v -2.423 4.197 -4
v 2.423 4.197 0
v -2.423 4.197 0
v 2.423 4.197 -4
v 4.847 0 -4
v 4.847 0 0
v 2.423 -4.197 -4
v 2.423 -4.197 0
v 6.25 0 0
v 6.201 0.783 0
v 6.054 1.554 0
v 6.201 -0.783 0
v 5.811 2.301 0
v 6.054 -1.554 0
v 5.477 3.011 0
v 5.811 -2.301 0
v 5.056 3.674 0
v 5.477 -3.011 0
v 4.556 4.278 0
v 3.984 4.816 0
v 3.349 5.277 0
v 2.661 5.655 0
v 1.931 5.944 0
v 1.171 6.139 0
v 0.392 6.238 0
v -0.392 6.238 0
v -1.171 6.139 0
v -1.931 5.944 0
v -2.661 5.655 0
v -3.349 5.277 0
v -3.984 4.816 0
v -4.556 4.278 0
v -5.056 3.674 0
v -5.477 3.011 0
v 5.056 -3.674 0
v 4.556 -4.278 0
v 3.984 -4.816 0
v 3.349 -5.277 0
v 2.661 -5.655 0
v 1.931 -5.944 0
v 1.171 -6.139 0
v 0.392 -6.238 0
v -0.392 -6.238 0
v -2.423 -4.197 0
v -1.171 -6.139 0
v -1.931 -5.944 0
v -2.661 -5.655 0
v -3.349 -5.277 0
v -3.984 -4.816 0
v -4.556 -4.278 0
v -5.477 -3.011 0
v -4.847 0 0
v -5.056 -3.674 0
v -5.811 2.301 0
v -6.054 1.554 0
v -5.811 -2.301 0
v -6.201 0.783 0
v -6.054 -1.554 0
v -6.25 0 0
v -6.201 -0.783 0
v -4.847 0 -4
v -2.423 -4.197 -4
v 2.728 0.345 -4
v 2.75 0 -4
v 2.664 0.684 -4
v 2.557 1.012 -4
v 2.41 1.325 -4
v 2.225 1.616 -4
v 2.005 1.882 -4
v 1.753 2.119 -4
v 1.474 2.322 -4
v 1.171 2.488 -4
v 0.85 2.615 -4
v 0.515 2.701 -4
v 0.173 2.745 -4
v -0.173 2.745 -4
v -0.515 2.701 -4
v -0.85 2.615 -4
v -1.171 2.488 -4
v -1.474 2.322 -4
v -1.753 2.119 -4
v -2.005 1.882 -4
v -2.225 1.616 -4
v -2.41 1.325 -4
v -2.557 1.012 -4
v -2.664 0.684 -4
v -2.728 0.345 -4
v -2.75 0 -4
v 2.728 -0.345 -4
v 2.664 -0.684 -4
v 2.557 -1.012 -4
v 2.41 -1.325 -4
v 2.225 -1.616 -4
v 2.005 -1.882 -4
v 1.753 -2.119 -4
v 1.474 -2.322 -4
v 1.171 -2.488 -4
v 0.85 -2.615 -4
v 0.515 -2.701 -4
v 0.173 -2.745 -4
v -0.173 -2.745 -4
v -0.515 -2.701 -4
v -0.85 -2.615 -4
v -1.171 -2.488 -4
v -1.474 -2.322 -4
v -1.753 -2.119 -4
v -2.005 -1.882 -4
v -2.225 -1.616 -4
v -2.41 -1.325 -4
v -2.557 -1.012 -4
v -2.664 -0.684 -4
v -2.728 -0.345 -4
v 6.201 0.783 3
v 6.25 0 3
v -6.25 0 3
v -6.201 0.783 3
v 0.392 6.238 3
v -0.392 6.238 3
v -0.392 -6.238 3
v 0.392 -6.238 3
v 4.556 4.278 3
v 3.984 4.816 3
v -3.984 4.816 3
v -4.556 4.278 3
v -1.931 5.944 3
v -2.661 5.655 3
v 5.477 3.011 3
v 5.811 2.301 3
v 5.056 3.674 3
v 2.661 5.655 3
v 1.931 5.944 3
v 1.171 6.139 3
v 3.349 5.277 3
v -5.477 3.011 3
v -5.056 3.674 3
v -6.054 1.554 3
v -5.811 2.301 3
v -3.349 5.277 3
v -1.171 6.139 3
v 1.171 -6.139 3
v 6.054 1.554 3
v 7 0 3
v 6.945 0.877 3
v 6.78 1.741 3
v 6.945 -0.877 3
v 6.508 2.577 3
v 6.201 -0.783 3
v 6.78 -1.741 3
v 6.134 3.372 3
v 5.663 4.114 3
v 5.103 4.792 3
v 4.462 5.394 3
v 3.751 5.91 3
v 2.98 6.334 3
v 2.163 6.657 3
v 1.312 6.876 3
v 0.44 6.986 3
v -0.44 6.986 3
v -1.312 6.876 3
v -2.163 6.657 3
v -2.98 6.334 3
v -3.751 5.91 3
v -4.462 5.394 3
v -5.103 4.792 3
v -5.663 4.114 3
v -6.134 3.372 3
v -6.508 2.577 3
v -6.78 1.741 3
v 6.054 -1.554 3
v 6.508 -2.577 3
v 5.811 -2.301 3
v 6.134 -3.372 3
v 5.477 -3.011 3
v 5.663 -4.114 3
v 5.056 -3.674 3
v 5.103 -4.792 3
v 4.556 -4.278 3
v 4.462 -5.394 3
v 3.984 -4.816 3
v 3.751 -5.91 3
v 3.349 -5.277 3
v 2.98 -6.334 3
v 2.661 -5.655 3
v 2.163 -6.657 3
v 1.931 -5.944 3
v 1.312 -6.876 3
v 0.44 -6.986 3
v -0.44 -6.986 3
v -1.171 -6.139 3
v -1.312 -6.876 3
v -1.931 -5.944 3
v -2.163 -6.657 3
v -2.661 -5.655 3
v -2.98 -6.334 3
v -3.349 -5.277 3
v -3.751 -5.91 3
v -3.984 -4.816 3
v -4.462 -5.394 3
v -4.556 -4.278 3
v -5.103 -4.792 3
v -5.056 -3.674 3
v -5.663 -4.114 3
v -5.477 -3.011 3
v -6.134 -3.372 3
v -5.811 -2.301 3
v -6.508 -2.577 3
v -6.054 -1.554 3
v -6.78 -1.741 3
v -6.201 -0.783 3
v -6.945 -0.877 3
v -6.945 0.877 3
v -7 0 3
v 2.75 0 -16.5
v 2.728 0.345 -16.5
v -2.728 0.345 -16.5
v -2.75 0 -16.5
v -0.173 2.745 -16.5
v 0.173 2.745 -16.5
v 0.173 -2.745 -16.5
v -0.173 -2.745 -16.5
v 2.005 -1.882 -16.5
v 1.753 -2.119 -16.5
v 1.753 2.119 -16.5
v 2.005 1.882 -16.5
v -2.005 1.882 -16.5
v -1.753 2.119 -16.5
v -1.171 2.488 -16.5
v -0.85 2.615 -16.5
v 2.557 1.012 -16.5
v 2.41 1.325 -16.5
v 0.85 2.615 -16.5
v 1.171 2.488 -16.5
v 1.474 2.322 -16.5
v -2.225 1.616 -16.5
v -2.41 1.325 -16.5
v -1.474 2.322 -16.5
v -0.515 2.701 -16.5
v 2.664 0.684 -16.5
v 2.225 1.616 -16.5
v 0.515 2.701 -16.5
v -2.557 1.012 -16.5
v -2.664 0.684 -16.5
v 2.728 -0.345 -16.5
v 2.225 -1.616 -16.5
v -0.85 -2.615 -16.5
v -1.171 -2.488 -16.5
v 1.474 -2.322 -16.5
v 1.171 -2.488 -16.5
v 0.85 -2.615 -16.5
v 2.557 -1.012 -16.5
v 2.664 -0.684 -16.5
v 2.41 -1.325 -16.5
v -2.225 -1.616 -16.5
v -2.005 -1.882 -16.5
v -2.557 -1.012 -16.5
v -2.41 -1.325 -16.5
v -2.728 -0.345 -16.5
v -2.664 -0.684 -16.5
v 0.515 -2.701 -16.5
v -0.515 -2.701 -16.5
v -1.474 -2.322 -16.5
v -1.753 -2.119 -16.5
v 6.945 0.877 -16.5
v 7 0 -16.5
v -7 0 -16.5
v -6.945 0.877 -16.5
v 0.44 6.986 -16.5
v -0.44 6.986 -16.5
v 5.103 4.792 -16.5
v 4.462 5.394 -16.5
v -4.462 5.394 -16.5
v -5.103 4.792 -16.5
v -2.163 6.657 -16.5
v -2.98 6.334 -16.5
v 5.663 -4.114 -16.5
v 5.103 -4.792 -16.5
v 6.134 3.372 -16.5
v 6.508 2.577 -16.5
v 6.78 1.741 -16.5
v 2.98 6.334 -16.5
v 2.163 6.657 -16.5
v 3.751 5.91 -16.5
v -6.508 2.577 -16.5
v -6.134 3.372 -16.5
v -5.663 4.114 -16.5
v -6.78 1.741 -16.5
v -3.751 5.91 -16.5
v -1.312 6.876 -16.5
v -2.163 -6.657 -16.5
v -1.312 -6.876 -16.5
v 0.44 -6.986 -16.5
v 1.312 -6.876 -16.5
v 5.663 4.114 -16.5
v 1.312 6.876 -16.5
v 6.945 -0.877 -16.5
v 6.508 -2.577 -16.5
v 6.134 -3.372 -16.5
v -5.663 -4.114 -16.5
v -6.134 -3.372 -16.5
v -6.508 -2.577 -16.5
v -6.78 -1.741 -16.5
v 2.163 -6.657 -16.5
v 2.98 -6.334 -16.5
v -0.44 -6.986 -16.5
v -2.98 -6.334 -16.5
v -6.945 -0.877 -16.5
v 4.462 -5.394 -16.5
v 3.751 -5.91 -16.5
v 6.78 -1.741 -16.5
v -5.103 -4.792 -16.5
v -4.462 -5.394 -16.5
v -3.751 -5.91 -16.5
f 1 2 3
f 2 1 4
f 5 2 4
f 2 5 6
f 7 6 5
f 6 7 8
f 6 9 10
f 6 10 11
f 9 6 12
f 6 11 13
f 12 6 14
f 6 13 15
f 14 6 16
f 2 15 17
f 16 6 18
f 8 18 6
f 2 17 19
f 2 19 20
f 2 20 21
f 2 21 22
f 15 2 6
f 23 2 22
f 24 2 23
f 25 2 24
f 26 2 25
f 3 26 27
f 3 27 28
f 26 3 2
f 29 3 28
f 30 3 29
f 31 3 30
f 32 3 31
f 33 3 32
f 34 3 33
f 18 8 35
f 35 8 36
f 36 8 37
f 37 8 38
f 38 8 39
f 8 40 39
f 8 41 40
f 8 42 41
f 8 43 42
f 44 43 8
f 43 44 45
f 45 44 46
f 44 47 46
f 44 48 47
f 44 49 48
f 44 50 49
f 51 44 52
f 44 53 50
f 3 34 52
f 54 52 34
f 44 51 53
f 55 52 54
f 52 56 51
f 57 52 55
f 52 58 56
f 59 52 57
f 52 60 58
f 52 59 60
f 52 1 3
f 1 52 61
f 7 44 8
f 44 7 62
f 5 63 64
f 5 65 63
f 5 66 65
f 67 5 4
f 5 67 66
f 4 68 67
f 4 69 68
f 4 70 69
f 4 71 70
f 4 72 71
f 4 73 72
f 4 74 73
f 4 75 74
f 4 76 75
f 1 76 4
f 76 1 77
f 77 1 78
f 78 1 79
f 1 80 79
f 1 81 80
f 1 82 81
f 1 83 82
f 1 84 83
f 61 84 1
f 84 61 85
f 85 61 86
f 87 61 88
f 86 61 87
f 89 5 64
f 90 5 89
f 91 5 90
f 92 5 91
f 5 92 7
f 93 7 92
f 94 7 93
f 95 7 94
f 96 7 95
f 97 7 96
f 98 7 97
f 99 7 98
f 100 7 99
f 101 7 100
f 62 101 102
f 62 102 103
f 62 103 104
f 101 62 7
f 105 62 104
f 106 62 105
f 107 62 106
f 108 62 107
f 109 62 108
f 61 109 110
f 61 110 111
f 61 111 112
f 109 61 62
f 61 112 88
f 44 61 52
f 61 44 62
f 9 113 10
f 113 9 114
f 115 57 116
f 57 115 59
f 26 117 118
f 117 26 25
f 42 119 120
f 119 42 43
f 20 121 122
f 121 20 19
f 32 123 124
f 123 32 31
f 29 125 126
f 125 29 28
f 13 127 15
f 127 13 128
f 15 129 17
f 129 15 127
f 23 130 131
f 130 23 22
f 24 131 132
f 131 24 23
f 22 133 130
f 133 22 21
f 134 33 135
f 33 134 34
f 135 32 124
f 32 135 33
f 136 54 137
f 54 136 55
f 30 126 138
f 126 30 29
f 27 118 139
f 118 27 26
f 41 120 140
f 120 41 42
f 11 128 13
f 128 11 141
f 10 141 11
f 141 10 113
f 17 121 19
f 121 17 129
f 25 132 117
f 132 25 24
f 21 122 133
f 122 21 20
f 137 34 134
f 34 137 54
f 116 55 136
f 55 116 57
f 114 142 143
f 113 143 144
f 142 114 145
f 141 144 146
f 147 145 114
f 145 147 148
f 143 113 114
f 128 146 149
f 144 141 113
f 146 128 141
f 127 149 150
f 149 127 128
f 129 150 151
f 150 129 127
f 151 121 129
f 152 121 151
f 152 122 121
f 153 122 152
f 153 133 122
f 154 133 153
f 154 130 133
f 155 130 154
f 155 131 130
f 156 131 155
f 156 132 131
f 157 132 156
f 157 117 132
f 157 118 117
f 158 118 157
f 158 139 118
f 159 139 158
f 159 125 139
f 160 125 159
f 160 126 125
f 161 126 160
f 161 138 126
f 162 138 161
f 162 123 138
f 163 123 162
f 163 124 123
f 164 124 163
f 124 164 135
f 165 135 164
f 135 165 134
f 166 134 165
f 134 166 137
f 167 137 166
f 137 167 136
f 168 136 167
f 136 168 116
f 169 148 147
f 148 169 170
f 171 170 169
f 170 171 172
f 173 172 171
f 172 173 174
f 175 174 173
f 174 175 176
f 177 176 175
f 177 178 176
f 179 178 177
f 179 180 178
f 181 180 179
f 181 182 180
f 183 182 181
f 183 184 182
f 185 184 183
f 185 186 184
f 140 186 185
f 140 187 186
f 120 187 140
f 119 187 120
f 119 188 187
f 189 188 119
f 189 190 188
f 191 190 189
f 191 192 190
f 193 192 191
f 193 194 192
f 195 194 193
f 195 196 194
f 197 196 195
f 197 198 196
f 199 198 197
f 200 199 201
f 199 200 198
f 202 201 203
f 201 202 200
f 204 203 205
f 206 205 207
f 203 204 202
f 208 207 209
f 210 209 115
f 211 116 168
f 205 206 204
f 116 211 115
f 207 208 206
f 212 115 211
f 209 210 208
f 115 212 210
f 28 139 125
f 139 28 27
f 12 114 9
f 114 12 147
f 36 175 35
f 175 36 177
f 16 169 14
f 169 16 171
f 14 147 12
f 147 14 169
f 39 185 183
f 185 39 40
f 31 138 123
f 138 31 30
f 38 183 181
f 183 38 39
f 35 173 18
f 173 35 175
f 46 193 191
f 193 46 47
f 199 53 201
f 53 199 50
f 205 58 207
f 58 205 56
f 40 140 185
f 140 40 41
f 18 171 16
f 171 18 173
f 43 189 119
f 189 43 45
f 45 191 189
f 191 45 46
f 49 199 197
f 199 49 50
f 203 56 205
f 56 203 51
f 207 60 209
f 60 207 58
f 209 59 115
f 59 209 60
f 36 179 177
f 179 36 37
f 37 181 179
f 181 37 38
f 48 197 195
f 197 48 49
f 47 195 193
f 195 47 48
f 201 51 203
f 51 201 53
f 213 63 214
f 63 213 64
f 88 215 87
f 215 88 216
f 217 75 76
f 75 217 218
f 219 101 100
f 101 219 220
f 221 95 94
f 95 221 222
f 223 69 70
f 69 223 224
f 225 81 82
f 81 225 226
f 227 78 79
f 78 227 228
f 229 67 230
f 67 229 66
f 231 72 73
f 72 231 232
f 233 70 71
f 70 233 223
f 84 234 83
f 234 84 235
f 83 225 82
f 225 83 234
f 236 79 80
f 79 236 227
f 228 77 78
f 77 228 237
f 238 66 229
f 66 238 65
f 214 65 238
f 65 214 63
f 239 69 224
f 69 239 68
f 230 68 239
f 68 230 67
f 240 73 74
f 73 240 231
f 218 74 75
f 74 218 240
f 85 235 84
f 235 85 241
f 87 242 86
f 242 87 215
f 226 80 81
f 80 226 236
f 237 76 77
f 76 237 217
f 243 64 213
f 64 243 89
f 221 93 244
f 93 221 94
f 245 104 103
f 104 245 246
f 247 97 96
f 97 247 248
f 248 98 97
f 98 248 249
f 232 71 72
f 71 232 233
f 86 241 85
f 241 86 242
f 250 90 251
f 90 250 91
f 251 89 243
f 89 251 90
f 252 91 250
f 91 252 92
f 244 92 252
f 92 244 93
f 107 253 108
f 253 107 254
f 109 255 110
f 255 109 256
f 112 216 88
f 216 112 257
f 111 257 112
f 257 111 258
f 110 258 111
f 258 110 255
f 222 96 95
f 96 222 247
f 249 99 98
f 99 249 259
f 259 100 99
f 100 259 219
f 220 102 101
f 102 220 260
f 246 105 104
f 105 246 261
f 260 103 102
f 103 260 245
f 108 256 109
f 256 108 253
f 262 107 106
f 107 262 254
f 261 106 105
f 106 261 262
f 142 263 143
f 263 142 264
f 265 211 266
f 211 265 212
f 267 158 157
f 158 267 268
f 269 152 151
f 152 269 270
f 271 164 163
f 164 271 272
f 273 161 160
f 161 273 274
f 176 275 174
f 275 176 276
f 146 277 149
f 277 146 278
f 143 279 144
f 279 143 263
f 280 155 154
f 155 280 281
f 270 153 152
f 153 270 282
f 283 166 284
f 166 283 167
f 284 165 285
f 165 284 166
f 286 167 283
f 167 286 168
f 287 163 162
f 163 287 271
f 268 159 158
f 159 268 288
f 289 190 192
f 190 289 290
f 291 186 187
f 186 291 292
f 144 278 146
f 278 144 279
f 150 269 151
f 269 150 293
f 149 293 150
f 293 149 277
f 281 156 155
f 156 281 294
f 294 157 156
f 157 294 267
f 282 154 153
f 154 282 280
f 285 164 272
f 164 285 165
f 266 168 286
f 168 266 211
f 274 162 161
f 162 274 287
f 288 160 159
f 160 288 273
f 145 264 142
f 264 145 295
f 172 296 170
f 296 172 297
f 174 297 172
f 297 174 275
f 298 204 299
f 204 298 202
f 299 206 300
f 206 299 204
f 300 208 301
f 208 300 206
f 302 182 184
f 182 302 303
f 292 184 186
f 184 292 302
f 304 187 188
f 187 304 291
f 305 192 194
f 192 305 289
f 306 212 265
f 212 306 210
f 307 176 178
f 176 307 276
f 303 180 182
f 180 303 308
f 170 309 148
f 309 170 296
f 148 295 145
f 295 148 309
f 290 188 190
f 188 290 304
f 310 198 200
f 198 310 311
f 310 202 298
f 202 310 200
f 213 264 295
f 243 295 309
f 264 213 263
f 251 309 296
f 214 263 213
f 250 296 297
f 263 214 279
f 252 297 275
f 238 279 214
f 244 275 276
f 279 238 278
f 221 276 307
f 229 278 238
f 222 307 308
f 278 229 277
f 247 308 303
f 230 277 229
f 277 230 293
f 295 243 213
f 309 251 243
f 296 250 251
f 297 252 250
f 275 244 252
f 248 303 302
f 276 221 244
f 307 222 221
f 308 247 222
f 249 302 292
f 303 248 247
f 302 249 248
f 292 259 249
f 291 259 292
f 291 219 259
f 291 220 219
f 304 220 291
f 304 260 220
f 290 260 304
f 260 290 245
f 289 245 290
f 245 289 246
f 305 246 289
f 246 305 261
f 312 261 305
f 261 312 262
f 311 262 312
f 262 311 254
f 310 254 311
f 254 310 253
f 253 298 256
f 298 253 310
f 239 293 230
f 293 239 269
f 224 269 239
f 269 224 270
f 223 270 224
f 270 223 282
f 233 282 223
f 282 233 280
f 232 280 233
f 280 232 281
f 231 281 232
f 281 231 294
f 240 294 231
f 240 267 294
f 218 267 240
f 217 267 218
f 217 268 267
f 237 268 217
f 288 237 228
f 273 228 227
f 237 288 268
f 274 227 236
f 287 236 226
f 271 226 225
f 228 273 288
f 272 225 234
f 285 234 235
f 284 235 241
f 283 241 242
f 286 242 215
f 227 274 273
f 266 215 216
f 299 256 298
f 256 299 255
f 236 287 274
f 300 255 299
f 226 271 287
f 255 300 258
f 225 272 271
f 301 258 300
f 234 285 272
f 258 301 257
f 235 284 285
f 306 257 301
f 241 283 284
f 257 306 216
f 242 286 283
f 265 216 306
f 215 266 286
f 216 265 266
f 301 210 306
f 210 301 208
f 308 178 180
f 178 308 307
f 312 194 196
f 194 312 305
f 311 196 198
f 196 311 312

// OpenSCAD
$fn = 50;


difference() {
	union() {
		translate(v = [0, 0, -16.5000000000]) {
			cylinder(h = 19.5000000000, r = 7.0000000000);
		}
	}
	union() {
		translate(v = [0, 0, 0]) {
			rotate(a = [0, 0, 0]) {
				difference() {
					union() {
						translate(v = [0, 0, -4]) {
							linear_extrude(height = 4) {
								polygon(points = [[4.8468000000, 0.0000000000], [2.4234000000, 4.1974519271], [-2.4234000000, 4.1974519271], [-4.8468000000, 0.0000000000], [-2.4234000000, -4.1974519271], [2.4234000000, -4.1974519271]]);
							}
						}
					}
					union();
				}
			}
		}
		#cylinder(h = 3, r = 6.2500000000);
		#translate(v = [0, 0, -100.0000000000]) {
			cylinder(h = 200, r = 2.7500000000);
		}
	}
}
